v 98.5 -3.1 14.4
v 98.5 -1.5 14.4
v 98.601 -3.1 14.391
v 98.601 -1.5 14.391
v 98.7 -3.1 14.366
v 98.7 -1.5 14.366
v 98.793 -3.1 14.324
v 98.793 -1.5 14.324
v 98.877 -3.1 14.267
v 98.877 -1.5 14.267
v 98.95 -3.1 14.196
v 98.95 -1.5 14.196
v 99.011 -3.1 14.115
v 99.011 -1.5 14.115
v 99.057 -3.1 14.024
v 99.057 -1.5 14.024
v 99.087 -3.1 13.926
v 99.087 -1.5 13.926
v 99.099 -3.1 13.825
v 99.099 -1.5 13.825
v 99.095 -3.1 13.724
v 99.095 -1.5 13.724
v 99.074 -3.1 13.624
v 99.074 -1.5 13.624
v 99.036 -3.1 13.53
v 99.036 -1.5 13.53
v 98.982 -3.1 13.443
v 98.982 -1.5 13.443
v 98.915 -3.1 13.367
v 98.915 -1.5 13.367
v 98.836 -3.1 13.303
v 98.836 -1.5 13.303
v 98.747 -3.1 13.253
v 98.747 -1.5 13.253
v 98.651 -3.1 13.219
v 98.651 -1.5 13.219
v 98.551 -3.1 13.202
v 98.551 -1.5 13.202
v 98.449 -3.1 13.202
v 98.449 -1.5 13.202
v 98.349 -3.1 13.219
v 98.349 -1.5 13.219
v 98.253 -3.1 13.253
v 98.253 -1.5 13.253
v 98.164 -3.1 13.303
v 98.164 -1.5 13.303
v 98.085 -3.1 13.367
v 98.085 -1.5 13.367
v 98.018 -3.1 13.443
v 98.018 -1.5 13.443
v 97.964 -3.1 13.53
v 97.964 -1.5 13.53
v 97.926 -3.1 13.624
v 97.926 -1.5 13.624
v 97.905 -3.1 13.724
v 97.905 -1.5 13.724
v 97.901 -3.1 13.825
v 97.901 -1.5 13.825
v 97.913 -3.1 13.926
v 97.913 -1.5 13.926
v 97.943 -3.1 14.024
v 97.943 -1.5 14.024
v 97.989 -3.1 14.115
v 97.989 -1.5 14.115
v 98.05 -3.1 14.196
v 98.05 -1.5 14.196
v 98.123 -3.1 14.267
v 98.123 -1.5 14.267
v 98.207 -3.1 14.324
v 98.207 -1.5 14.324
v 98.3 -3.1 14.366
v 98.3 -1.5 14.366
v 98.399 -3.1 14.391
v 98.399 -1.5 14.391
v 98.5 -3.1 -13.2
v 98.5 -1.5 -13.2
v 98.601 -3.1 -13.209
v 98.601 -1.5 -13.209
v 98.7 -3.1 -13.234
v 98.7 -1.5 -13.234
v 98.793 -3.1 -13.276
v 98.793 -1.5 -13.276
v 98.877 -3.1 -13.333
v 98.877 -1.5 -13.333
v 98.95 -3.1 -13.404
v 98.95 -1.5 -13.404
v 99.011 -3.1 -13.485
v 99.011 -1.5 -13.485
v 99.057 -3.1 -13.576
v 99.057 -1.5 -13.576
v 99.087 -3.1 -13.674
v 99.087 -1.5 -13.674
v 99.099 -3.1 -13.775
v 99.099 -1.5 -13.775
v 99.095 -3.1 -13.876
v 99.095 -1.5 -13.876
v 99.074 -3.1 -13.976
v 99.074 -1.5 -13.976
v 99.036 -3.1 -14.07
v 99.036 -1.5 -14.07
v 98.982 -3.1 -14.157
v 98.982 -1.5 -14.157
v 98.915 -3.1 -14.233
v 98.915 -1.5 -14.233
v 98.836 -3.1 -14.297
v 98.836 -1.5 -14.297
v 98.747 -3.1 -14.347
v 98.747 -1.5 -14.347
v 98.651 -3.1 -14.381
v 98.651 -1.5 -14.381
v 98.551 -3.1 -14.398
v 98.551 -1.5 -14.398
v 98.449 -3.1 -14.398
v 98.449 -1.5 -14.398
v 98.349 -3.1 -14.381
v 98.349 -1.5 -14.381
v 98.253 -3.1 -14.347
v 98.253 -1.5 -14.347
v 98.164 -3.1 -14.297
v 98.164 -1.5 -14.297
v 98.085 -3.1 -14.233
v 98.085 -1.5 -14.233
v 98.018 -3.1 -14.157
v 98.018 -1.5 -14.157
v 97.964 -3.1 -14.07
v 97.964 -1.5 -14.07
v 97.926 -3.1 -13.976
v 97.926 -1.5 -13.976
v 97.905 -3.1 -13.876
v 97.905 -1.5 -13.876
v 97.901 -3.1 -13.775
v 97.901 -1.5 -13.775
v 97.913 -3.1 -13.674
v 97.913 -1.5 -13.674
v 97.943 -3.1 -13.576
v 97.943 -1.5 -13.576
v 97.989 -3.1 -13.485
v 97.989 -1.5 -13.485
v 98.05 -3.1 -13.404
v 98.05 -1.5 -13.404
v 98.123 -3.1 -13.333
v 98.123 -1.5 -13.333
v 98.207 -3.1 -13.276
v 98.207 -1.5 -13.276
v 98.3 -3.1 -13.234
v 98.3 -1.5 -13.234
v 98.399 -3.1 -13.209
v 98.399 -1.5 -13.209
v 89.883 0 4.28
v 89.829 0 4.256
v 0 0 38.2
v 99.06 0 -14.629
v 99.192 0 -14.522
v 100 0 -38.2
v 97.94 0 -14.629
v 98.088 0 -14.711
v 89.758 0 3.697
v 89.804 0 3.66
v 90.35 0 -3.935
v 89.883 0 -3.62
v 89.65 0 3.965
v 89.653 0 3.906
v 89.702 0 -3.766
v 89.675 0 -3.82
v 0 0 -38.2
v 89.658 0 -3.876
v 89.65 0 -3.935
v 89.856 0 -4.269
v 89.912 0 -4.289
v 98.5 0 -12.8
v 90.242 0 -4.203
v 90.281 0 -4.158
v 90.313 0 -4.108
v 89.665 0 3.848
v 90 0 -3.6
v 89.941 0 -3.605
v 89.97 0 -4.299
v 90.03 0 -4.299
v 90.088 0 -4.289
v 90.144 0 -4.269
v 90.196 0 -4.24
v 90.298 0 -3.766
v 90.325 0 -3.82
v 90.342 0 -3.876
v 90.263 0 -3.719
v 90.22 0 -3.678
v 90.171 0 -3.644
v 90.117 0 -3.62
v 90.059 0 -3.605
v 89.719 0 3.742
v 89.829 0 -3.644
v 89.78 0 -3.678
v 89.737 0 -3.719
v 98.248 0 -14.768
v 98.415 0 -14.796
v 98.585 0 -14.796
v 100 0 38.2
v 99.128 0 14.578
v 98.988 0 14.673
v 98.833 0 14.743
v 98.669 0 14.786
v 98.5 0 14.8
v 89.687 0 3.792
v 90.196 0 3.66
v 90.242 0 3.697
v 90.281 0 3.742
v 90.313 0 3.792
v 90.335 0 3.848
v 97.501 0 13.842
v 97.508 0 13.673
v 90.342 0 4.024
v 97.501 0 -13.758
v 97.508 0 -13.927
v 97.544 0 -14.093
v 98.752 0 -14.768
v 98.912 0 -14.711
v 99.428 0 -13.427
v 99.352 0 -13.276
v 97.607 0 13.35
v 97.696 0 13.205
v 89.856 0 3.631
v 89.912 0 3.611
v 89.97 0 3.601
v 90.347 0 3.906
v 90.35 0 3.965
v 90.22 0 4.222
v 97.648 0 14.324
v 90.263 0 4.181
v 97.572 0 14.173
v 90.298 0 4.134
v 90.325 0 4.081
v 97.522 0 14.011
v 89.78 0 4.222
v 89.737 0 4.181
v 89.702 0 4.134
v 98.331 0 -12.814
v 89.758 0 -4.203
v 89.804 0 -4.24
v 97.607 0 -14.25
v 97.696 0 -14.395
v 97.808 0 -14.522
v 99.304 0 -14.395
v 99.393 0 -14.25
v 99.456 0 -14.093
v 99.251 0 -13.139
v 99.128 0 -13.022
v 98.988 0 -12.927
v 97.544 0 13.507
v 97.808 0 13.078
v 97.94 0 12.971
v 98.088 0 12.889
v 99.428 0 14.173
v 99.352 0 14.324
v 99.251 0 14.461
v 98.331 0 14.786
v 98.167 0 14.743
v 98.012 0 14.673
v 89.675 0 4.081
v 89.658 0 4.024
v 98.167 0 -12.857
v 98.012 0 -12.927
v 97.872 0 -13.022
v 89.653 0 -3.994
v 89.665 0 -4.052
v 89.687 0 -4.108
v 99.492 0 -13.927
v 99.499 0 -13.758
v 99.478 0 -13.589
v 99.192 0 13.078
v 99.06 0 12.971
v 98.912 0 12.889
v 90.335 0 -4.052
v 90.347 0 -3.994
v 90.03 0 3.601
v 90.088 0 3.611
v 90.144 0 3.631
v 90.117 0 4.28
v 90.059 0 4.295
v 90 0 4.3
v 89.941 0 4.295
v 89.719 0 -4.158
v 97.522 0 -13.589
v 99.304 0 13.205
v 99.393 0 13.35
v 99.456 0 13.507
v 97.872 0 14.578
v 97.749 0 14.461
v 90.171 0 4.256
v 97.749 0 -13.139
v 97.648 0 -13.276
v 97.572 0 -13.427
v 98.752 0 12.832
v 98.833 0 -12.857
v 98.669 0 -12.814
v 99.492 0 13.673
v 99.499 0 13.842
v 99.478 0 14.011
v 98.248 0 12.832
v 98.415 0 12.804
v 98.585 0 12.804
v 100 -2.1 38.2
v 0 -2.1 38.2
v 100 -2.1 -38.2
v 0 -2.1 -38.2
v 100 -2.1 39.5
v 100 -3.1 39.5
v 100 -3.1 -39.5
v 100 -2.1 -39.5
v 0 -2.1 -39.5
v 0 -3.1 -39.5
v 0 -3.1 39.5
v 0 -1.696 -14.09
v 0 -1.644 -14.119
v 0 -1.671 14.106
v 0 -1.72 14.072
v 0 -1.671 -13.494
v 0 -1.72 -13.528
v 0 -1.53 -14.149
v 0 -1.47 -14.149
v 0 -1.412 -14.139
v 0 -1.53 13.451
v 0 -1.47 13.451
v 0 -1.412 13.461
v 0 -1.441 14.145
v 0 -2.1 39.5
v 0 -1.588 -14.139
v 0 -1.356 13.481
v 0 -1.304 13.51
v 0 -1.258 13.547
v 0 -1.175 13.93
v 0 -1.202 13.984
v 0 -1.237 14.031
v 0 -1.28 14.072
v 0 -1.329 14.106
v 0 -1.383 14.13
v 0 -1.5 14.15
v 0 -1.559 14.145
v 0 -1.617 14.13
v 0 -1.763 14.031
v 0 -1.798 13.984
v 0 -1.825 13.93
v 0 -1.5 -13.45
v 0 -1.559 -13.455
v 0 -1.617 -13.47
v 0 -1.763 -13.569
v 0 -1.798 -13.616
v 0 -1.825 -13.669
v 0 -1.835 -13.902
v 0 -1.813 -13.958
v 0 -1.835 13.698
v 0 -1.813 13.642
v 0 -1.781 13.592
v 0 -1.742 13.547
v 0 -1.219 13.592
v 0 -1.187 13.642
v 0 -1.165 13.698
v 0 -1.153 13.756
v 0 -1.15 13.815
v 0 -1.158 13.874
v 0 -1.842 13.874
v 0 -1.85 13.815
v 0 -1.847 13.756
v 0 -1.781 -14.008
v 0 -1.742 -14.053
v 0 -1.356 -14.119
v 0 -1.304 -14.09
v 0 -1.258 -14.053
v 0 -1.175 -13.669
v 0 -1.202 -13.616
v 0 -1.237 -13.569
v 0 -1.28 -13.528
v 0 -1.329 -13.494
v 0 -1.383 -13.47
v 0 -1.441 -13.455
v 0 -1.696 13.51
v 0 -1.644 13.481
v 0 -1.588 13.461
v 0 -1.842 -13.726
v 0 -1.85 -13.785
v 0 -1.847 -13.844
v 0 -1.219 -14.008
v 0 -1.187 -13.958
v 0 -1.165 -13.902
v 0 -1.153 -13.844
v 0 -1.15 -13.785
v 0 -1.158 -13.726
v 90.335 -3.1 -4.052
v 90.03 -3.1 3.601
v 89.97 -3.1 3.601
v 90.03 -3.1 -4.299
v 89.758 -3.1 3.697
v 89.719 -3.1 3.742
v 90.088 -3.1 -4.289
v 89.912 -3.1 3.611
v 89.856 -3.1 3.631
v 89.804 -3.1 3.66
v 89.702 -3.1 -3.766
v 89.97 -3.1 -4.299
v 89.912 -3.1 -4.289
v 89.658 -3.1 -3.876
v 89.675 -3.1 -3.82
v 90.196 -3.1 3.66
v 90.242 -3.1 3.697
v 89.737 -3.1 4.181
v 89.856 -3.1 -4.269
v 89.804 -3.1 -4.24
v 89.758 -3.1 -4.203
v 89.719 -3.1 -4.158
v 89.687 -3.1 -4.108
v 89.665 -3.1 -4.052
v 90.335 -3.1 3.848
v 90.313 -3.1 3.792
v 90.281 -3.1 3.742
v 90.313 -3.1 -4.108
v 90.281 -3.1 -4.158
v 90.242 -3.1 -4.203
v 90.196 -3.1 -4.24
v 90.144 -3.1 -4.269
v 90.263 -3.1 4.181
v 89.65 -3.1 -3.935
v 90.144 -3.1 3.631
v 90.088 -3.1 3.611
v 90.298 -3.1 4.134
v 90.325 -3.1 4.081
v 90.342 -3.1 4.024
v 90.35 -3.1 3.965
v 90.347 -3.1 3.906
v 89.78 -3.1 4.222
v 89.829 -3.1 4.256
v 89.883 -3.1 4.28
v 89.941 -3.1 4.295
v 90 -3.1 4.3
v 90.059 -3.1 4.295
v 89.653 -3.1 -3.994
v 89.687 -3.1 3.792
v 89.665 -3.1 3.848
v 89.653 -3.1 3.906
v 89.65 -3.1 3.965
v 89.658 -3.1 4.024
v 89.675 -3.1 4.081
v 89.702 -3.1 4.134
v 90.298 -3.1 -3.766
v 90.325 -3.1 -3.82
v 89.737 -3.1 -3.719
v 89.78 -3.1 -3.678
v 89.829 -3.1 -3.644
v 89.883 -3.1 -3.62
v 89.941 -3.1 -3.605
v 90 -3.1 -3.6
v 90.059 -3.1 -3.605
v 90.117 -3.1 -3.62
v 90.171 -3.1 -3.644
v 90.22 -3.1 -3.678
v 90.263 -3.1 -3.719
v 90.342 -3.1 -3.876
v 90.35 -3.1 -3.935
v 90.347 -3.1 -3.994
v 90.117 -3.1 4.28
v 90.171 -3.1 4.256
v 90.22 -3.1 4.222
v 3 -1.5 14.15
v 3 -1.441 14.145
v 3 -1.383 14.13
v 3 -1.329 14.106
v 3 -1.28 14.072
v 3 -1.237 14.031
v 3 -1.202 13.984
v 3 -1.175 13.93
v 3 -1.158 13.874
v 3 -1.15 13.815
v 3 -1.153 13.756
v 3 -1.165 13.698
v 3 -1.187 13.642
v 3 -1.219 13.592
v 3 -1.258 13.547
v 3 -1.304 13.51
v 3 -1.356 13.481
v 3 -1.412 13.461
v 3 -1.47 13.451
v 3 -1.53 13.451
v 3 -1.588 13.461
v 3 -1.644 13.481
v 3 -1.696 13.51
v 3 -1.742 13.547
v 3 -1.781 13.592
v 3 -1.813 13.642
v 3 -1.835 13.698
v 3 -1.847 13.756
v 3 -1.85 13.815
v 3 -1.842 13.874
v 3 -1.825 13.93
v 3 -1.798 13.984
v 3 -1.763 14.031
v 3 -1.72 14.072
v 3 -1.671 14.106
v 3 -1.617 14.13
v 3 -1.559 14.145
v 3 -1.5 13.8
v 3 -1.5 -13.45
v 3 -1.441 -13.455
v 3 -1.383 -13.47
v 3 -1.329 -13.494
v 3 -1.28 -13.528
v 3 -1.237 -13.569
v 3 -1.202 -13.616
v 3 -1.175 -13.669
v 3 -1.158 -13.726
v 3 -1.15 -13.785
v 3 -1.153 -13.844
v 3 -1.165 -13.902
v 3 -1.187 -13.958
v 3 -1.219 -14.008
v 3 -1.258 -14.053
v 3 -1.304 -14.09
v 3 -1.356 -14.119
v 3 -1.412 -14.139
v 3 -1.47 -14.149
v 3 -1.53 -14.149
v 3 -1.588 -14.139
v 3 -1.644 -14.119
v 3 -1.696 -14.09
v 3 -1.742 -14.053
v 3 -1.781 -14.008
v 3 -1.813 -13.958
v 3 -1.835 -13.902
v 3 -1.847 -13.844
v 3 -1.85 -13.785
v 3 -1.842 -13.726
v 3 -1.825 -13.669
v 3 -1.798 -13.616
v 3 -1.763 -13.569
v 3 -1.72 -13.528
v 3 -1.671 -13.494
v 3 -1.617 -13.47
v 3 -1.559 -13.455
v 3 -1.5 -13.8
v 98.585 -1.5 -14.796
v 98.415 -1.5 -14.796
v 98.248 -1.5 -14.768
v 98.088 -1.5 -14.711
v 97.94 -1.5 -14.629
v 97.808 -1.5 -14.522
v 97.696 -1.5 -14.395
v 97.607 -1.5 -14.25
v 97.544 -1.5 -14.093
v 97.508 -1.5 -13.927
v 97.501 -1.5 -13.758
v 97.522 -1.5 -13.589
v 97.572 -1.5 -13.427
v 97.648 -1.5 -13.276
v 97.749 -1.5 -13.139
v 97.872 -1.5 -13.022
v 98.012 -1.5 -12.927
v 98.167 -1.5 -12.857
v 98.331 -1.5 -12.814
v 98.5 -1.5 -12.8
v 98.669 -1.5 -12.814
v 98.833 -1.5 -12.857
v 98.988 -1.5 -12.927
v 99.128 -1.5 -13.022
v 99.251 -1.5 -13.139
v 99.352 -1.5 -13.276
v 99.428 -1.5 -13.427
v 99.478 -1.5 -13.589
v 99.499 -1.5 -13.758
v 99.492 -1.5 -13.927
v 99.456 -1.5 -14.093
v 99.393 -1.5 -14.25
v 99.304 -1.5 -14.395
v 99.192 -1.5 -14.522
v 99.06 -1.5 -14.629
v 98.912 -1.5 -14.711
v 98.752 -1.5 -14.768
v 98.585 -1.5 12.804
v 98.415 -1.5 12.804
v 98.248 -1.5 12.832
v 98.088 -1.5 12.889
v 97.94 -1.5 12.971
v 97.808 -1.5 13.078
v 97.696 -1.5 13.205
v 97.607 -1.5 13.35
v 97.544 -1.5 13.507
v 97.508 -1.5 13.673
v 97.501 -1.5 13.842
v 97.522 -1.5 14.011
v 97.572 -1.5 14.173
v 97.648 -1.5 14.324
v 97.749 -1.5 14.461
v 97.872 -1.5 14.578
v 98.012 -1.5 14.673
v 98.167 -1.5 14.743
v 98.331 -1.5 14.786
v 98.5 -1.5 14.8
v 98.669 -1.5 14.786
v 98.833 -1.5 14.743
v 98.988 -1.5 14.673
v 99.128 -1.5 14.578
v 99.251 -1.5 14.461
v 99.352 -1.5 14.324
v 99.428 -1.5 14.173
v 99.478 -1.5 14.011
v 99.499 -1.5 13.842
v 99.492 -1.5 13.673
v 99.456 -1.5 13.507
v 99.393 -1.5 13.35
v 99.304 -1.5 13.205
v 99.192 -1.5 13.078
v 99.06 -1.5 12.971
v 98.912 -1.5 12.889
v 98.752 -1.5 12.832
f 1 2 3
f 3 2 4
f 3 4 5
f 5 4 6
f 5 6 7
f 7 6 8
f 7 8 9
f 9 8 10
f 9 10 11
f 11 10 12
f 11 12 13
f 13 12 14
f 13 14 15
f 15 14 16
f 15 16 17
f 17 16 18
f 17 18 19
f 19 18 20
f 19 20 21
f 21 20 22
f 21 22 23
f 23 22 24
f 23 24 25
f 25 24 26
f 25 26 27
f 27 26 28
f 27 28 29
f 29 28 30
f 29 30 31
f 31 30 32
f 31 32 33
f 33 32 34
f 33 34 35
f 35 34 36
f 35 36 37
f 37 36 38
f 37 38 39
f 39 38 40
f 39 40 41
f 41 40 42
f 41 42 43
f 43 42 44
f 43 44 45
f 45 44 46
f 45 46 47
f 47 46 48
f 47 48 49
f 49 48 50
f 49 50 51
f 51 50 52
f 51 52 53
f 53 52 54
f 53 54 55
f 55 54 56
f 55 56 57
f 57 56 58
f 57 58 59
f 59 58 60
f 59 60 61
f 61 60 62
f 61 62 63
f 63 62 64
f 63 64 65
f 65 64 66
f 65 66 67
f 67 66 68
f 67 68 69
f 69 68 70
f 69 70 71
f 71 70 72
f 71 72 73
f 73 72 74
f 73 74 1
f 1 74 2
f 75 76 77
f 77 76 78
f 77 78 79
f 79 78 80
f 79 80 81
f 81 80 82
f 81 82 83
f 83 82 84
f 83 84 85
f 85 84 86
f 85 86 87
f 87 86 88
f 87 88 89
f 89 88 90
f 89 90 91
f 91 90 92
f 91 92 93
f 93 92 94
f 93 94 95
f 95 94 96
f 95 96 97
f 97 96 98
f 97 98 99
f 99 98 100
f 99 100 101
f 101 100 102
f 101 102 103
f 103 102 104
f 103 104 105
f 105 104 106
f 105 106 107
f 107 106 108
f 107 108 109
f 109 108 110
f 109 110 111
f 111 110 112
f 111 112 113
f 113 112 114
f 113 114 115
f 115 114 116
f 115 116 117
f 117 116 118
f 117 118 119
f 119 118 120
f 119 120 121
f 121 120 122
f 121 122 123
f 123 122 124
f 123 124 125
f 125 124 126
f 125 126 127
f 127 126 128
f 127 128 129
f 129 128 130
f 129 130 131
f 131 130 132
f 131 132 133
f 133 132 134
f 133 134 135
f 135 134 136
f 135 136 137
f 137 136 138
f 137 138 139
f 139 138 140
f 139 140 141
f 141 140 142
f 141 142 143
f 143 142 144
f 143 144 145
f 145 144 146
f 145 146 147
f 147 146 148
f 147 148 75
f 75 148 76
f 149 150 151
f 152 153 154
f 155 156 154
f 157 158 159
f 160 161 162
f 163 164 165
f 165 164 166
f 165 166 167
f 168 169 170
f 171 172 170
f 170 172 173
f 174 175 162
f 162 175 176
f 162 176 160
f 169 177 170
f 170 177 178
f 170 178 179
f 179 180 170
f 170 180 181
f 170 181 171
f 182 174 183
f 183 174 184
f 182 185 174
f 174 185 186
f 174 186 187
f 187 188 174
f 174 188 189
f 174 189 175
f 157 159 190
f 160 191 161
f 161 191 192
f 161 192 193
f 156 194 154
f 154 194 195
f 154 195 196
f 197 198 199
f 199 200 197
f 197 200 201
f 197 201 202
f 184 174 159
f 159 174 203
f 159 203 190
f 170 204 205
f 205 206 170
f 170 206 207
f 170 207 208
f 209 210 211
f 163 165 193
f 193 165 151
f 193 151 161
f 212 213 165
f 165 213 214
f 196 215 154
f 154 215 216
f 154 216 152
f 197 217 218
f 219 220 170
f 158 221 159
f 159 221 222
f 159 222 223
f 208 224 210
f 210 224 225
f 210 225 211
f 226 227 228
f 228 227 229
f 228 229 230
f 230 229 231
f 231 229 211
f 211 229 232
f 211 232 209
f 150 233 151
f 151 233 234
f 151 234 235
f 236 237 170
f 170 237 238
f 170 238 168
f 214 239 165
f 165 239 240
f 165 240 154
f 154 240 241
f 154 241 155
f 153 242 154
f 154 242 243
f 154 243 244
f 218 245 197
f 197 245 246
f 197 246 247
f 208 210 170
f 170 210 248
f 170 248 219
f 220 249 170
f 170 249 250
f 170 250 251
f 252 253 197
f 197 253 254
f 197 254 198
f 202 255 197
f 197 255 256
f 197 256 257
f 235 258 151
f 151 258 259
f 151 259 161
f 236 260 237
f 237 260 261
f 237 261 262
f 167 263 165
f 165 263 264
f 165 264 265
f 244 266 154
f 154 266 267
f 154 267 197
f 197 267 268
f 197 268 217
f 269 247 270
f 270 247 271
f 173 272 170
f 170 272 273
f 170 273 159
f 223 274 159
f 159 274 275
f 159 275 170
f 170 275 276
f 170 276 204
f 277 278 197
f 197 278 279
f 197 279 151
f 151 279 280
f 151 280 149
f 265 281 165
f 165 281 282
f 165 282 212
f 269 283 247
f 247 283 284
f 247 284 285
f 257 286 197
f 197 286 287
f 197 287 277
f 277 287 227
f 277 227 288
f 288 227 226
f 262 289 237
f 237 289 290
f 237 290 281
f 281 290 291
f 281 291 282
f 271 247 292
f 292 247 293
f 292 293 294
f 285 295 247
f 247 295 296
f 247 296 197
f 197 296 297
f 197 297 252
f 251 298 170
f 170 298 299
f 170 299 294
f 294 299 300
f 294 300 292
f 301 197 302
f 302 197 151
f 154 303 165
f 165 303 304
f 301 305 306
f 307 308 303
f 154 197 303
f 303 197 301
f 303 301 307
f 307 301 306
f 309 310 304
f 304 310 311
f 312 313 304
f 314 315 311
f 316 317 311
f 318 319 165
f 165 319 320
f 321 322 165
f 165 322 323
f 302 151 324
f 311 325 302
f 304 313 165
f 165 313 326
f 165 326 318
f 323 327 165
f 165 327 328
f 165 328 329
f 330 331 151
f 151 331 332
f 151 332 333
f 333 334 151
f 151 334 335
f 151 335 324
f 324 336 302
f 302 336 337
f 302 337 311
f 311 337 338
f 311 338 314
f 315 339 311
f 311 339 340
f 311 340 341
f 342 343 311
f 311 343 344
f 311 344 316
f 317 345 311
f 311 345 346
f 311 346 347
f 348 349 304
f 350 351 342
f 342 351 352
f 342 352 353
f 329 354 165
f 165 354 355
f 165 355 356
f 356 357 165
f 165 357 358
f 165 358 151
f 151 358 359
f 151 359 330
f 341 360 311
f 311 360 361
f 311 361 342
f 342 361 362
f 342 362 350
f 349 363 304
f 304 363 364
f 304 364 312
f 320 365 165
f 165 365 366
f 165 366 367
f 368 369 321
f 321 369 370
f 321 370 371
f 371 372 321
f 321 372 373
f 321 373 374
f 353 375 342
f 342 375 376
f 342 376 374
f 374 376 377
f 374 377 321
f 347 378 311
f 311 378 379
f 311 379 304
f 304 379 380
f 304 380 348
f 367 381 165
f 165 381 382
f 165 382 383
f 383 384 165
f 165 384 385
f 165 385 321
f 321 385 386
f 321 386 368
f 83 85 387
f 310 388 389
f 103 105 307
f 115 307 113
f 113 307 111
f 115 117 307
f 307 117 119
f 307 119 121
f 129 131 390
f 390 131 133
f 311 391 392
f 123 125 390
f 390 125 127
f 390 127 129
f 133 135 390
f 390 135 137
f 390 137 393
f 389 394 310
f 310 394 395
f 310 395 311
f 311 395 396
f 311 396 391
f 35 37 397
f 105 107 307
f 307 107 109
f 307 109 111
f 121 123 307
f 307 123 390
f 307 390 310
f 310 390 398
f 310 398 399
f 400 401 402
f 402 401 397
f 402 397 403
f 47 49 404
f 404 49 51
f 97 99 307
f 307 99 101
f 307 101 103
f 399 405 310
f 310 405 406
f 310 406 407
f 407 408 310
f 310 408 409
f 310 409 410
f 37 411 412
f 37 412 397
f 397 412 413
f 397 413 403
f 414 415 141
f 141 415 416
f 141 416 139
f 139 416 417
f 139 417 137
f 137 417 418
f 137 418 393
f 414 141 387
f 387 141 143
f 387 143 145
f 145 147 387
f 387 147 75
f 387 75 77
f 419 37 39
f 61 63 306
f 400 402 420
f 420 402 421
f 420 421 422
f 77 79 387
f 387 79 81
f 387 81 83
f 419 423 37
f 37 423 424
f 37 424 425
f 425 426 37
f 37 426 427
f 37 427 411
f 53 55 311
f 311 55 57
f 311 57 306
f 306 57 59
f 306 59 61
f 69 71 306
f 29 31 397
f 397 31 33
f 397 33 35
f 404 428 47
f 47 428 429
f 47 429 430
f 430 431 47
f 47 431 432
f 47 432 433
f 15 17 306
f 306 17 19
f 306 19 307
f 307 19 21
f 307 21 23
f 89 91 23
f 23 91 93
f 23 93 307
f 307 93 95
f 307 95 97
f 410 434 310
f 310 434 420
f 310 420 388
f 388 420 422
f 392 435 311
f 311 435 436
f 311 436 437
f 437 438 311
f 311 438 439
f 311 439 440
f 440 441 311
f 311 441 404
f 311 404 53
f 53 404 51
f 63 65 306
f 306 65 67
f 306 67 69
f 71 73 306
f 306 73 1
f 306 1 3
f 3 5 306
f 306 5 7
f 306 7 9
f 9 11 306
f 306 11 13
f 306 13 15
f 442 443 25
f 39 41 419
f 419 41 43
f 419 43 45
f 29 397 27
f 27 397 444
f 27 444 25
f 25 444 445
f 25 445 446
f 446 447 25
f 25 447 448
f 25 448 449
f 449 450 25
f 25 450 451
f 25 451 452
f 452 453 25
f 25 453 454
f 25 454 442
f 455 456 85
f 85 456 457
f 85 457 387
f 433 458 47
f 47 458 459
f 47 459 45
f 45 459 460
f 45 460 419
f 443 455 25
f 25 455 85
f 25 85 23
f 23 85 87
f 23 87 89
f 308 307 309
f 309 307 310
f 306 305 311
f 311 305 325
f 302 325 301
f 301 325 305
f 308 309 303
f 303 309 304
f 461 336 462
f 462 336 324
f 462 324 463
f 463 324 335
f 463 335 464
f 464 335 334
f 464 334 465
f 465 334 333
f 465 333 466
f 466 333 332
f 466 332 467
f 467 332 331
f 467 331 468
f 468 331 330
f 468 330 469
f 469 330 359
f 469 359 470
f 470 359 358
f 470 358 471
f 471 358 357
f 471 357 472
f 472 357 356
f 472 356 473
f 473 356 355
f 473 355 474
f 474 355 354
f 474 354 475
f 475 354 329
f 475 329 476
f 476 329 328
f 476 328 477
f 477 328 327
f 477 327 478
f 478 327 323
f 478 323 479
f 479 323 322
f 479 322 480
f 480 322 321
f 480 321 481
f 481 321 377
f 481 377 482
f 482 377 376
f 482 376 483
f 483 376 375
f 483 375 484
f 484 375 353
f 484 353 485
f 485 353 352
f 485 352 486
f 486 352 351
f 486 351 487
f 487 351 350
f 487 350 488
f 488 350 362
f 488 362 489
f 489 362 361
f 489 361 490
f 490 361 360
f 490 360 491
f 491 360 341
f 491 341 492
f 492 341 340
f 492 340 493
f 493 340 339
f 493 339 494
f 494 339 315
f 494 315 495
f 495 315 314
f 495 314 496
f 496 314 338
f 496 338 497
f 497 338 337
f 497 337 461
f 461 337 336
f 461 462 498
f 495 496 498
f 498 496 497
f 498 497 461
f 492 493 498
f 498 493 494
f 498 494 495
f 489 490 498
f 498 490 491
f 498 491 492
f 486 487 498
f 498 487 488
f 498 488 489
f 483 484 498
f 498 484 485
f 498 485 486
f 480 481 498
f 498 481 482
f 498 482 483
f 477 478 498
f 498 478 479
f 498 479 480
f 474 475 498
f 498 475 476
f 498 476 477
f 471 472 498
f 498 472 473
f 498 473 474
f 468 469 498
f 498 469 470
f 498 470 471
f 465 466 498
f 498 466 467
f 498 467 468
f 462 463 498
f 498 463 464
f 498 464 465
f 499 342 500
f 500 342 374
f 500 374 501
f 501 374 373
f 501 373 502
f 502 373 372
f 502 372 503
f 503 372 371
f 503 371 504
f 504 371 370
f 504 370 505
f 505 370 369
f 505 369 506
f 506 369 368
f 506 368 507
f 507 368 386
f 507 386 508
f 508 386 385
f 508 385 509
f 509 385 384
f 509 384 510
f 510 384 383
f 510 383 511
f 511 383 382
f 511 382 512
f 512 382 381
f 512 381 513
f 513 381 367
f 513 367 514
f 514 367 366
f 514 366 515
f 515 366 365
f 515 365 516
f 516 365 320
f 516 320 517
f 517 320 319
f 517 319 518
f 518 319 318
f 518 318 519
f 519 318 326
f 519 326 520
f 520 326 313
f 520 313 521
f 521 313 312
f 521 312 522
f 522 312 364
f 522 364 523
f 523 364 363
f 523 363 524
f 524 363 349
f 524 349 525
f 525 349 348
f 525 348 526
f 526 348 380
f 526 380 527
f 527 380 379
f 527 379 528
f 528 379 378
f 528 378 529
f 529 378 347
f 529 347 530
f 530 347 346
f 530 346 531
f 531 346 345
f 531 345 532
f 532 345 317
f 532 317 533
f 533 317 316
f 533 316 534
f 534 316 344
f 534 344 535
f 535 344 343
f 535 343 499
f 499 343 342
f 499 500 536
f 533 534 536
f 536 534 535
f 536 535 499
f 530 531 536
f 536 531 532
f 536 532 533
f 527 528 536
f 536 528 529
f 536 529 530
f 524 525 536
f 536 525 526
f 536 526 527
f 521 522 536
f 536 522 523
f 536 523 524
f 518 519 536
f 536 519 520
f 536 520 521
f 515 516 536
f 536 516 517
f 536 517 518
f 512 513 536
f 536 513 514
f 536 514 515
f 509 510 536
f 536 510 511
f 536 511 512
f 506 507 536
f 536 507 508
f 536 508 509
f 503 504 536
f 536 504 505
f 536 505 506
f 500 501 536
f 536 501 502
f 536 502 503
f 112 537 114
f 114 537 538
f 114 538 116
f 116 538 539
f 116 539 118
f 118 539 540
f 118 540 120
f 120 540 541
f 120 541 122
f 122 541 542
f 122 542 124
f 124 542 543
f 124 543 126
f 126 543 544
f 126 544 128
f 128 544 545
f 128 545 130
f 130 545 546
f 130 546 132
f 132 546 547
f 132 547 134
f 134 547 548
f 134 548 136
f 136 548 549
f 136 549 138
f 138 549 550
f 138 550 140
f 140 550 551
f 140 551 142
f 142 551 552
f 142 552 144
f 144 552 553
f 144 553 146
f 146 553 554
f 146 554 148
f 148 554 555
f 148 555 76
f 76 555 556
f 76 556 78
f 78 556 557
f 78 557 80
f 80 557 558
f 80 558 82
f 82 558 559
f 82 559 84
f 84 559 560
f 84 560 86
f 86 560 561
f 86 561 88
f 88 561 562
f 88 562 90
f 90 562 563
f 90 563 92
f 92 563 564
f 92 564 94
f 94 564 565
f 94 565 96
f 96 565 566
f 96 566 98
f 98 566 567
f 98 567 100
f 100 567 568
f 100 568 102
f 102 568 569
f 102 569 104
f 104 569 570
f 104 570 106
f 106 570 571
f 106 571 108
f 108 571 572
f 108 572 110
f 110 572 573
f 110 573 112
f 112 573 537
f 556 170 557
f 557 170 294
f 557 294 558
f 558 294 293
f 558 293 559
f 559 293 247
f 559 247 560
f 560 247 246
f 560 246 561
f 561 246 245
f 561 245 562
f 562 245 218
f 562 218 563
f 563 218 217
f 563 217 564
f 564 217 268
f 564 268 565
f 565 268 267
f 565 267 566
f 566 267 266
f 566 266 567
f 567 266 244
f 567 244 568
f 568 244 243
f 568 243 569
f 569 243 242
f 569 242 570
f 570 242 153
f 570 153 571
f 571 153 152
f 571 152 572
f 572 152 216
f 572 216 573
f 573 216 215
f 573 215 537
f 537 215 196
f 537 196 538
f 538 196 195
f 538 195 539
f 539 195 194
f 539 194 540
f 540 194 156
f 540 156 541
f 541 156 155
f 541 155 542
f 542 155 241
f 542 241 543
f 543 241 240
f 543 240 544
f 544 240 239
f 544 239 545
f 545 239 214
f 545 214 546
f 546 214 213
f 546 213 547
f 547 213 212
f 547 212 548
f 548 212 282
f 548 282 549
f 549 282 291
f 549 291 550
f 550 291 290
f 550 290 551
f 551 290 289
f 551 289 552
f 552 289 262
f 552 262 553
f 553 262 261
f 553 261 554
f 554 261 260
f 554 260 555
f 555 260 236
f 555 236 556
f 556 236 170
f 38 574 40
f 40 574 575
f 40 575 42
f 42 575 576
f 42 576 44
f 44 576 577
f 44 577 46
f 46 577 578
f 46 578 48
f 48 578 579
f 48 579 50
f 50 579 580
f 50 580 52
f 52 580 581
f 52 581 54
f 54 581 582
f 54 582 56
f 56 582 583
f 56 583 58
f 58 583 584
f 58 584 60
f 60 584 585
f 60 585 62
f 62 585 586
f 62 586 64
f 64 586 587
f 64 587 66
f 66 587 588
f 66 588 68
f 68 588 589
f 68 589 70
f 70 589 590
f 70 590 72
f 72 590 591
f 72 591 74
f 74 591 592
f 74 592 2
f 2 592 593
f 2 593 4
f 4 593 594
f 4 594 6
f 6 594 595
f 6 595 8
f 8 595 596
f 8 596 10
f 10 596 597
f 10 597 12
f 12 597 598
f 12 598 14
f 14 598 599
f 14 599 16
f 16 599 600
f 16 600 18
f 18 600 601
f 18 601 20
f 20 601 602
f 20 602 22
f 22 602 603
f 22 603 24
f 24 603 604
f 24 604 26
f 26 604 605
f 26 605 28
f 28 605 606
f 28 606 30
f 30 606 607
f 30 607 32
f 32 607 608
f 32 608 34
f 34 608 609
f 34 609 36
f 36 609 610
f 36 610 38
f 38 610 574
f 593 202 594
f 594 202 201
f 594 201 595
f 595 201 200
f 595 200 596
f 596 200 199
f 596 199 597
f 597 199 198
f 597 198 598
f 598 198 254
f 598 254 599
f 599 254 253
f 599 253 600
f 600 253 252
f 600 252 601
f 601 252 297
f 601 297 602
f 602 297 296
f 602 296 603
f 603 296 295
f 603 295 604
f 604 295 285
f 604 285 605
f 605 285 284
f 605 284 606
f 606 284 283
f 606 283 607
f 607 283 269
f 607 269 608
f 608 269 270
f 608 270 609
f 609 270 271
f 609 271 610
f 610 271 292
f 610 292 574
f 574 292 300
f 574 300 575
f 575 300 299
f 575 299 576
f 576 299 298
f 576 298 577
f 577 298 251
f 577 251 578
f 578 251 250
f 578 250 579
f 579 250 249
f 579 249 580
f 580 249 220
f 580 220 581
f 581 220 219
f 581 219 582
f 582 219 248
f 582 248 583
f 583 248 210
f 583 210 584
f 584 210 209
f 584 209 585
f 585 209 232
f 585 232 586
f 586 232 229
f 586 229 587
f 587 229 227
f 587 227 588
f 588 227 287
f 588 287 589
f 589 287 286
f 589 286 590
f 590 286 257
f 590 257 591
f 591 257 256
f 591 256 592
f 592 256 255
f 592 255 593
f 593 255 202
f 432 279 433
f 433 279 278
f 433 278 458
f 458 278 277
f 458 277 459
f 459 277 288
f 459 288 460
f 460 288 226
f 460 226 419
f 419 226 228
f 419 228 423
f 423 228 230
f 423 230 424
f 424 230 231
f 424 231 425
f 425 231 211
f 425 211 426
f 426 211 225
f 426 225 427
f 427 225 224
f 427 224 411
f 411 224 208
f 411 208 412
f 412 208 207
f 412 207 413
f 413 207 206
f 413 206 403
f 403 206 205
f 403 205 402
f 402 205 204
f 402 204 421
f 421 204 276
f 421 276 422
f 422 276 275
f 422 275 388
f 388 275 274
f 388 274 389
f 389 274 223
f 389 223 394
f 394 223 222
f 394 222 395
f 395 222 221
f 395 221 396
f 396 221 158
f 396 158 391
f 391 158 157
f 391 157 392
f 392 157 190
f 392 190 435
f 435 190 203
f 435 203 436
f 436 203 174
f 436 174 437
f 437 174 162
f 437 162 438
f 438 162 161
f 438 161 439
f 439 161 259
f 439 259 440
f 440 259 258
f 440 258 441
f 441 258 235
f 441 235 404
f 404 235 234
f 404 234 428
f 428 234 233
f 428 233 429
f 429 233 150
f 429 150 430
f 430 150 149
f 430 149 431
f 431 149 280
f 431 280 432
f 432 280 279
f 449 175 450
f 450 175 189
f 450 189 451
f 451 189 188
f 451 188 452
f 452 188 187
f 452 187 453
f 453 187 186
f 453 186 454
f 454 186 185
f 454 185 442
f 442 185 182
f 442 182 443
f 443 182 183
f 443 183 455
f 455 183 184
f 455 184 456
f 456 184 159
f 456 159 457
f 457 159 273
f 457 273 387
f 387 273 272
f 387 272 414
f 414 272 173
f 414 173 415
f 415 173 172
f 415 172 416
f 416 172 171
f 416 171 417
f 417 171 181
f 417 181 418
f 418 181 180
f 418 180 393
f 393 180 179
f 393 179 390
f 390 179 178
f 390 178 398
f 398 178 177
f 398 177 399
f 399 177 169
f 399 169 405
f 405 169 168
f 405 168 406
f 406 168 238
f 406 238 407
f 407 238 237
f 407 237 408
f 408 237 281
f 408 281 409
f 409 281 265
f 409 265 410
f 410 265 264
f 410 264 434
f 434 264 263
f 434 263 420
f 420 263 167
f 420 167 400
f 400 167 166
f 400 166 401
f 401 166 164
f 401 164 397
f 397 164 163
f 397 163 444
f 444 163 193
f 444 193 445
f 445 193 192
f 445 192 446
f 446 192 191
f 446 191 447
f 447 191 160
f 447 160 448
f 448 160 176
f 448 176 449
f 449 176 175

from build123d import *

# Parameters (mm, degrees)
SKETCH_1_W          = 76.4
SKETCH_1_H          = 2.1
SKETCH_1_W_2        = 79
SKETCH_1_H_2        = 1
EXTRUDE_1_DEPTH     = 100
SKETCH_2_R          = 0.35
CUT_EXTRUDE_1_DEPTH = 3
SKETCH_4_R          = 0.6
CUT_EXTRUDE_2_DEPTH = 108.563283698
SKETCH_4_3_R        = 1
CUT_EXTRUDE_3_DEPTH = 1.5
SKETCH_5_R          = 0.35
CUT_EXTRUDE_4_DEPTH = 108.563283698


with BuildPart() as part:
    # 草图1 → 凸台-拉伸1 (new body)
    with BuildSketch(Plane(origin=(0, 0, 0), x_dir=(0, 0, -1), z_dir=(1, 0, 0))):
        with Locations((0, -1.05)):
            Rectangle(SKETCH_1_W, SKETCH_1_H)
        with Locations((0, -2.6)):
            Rectangle(SKETCH_1_W_2, SKETCH_1_H_2)
    extrude(amount=EXTRUDE_1_DEPTH)

    # 草图2 → 切除-拉伸1 (cut)
    with BuildSketch(Plane.ZY):
        with Locations((-13.8, -1.5)):
            Circle(SKETCH_2_R)
        with Locations((13.8, -1.5)):
            Circle(SKETCH_2_R)
    extrude(amount=-CUT_EXTRUDE_1_DEPTH, mode=Mode.SUBTRACT)

    # 草图4 → 切除-拉伸2 (cut, through all)
    with BuildSketch(Plane(origin=(0, 0, 0), x_dir=(1, 0, 0), z_dir=(0, 1, 0))):
        with Locations((98.5, -13.8)):
            Circle(SKETCH_4_R)
        with Locations((98.5, 13.8)):
            Circle(SKETCH_4_R)
    extrude(amount=-CUT_EXTRUDE_2_DEPTH, mode=Mode.SUBTRACT)

    # 草图4<3> → 切除-拉伸3 (cut)
    with BuildSketch(Plane(origin=(0, 0, 0), x_dir=(1, 0, 0), z_dir=(0, 1, 0))):
        with Locations((98.5, -13.8)):
            Circle(SKETCH_4_3_R)
        with Locations((98.5, 13.8)):
            Circle(SKETCH_4_3_R)
    extrude(amount=-CUT_EXTRUDE_3_DEPTH, mode=Mode.SUBTRACT)

    # 草图5 → 切除-拉伸4 (cut, through all)
    with BuildSketch(Plane(origin=(0, 0, 0), x_dir=(1, 0, 0), z_dir=(0, 1, 0))):
        with Locations((90, 3.95)):
            Circle(SKETCH_5_R)
        with Locations((90, -3.95)):
            Circle(SKETCH_5_R)
    extrude(amount=-CUT_EXTRUDE_4_DEPTH, mode=Mode.SUBTRACT)


solid = part.part
